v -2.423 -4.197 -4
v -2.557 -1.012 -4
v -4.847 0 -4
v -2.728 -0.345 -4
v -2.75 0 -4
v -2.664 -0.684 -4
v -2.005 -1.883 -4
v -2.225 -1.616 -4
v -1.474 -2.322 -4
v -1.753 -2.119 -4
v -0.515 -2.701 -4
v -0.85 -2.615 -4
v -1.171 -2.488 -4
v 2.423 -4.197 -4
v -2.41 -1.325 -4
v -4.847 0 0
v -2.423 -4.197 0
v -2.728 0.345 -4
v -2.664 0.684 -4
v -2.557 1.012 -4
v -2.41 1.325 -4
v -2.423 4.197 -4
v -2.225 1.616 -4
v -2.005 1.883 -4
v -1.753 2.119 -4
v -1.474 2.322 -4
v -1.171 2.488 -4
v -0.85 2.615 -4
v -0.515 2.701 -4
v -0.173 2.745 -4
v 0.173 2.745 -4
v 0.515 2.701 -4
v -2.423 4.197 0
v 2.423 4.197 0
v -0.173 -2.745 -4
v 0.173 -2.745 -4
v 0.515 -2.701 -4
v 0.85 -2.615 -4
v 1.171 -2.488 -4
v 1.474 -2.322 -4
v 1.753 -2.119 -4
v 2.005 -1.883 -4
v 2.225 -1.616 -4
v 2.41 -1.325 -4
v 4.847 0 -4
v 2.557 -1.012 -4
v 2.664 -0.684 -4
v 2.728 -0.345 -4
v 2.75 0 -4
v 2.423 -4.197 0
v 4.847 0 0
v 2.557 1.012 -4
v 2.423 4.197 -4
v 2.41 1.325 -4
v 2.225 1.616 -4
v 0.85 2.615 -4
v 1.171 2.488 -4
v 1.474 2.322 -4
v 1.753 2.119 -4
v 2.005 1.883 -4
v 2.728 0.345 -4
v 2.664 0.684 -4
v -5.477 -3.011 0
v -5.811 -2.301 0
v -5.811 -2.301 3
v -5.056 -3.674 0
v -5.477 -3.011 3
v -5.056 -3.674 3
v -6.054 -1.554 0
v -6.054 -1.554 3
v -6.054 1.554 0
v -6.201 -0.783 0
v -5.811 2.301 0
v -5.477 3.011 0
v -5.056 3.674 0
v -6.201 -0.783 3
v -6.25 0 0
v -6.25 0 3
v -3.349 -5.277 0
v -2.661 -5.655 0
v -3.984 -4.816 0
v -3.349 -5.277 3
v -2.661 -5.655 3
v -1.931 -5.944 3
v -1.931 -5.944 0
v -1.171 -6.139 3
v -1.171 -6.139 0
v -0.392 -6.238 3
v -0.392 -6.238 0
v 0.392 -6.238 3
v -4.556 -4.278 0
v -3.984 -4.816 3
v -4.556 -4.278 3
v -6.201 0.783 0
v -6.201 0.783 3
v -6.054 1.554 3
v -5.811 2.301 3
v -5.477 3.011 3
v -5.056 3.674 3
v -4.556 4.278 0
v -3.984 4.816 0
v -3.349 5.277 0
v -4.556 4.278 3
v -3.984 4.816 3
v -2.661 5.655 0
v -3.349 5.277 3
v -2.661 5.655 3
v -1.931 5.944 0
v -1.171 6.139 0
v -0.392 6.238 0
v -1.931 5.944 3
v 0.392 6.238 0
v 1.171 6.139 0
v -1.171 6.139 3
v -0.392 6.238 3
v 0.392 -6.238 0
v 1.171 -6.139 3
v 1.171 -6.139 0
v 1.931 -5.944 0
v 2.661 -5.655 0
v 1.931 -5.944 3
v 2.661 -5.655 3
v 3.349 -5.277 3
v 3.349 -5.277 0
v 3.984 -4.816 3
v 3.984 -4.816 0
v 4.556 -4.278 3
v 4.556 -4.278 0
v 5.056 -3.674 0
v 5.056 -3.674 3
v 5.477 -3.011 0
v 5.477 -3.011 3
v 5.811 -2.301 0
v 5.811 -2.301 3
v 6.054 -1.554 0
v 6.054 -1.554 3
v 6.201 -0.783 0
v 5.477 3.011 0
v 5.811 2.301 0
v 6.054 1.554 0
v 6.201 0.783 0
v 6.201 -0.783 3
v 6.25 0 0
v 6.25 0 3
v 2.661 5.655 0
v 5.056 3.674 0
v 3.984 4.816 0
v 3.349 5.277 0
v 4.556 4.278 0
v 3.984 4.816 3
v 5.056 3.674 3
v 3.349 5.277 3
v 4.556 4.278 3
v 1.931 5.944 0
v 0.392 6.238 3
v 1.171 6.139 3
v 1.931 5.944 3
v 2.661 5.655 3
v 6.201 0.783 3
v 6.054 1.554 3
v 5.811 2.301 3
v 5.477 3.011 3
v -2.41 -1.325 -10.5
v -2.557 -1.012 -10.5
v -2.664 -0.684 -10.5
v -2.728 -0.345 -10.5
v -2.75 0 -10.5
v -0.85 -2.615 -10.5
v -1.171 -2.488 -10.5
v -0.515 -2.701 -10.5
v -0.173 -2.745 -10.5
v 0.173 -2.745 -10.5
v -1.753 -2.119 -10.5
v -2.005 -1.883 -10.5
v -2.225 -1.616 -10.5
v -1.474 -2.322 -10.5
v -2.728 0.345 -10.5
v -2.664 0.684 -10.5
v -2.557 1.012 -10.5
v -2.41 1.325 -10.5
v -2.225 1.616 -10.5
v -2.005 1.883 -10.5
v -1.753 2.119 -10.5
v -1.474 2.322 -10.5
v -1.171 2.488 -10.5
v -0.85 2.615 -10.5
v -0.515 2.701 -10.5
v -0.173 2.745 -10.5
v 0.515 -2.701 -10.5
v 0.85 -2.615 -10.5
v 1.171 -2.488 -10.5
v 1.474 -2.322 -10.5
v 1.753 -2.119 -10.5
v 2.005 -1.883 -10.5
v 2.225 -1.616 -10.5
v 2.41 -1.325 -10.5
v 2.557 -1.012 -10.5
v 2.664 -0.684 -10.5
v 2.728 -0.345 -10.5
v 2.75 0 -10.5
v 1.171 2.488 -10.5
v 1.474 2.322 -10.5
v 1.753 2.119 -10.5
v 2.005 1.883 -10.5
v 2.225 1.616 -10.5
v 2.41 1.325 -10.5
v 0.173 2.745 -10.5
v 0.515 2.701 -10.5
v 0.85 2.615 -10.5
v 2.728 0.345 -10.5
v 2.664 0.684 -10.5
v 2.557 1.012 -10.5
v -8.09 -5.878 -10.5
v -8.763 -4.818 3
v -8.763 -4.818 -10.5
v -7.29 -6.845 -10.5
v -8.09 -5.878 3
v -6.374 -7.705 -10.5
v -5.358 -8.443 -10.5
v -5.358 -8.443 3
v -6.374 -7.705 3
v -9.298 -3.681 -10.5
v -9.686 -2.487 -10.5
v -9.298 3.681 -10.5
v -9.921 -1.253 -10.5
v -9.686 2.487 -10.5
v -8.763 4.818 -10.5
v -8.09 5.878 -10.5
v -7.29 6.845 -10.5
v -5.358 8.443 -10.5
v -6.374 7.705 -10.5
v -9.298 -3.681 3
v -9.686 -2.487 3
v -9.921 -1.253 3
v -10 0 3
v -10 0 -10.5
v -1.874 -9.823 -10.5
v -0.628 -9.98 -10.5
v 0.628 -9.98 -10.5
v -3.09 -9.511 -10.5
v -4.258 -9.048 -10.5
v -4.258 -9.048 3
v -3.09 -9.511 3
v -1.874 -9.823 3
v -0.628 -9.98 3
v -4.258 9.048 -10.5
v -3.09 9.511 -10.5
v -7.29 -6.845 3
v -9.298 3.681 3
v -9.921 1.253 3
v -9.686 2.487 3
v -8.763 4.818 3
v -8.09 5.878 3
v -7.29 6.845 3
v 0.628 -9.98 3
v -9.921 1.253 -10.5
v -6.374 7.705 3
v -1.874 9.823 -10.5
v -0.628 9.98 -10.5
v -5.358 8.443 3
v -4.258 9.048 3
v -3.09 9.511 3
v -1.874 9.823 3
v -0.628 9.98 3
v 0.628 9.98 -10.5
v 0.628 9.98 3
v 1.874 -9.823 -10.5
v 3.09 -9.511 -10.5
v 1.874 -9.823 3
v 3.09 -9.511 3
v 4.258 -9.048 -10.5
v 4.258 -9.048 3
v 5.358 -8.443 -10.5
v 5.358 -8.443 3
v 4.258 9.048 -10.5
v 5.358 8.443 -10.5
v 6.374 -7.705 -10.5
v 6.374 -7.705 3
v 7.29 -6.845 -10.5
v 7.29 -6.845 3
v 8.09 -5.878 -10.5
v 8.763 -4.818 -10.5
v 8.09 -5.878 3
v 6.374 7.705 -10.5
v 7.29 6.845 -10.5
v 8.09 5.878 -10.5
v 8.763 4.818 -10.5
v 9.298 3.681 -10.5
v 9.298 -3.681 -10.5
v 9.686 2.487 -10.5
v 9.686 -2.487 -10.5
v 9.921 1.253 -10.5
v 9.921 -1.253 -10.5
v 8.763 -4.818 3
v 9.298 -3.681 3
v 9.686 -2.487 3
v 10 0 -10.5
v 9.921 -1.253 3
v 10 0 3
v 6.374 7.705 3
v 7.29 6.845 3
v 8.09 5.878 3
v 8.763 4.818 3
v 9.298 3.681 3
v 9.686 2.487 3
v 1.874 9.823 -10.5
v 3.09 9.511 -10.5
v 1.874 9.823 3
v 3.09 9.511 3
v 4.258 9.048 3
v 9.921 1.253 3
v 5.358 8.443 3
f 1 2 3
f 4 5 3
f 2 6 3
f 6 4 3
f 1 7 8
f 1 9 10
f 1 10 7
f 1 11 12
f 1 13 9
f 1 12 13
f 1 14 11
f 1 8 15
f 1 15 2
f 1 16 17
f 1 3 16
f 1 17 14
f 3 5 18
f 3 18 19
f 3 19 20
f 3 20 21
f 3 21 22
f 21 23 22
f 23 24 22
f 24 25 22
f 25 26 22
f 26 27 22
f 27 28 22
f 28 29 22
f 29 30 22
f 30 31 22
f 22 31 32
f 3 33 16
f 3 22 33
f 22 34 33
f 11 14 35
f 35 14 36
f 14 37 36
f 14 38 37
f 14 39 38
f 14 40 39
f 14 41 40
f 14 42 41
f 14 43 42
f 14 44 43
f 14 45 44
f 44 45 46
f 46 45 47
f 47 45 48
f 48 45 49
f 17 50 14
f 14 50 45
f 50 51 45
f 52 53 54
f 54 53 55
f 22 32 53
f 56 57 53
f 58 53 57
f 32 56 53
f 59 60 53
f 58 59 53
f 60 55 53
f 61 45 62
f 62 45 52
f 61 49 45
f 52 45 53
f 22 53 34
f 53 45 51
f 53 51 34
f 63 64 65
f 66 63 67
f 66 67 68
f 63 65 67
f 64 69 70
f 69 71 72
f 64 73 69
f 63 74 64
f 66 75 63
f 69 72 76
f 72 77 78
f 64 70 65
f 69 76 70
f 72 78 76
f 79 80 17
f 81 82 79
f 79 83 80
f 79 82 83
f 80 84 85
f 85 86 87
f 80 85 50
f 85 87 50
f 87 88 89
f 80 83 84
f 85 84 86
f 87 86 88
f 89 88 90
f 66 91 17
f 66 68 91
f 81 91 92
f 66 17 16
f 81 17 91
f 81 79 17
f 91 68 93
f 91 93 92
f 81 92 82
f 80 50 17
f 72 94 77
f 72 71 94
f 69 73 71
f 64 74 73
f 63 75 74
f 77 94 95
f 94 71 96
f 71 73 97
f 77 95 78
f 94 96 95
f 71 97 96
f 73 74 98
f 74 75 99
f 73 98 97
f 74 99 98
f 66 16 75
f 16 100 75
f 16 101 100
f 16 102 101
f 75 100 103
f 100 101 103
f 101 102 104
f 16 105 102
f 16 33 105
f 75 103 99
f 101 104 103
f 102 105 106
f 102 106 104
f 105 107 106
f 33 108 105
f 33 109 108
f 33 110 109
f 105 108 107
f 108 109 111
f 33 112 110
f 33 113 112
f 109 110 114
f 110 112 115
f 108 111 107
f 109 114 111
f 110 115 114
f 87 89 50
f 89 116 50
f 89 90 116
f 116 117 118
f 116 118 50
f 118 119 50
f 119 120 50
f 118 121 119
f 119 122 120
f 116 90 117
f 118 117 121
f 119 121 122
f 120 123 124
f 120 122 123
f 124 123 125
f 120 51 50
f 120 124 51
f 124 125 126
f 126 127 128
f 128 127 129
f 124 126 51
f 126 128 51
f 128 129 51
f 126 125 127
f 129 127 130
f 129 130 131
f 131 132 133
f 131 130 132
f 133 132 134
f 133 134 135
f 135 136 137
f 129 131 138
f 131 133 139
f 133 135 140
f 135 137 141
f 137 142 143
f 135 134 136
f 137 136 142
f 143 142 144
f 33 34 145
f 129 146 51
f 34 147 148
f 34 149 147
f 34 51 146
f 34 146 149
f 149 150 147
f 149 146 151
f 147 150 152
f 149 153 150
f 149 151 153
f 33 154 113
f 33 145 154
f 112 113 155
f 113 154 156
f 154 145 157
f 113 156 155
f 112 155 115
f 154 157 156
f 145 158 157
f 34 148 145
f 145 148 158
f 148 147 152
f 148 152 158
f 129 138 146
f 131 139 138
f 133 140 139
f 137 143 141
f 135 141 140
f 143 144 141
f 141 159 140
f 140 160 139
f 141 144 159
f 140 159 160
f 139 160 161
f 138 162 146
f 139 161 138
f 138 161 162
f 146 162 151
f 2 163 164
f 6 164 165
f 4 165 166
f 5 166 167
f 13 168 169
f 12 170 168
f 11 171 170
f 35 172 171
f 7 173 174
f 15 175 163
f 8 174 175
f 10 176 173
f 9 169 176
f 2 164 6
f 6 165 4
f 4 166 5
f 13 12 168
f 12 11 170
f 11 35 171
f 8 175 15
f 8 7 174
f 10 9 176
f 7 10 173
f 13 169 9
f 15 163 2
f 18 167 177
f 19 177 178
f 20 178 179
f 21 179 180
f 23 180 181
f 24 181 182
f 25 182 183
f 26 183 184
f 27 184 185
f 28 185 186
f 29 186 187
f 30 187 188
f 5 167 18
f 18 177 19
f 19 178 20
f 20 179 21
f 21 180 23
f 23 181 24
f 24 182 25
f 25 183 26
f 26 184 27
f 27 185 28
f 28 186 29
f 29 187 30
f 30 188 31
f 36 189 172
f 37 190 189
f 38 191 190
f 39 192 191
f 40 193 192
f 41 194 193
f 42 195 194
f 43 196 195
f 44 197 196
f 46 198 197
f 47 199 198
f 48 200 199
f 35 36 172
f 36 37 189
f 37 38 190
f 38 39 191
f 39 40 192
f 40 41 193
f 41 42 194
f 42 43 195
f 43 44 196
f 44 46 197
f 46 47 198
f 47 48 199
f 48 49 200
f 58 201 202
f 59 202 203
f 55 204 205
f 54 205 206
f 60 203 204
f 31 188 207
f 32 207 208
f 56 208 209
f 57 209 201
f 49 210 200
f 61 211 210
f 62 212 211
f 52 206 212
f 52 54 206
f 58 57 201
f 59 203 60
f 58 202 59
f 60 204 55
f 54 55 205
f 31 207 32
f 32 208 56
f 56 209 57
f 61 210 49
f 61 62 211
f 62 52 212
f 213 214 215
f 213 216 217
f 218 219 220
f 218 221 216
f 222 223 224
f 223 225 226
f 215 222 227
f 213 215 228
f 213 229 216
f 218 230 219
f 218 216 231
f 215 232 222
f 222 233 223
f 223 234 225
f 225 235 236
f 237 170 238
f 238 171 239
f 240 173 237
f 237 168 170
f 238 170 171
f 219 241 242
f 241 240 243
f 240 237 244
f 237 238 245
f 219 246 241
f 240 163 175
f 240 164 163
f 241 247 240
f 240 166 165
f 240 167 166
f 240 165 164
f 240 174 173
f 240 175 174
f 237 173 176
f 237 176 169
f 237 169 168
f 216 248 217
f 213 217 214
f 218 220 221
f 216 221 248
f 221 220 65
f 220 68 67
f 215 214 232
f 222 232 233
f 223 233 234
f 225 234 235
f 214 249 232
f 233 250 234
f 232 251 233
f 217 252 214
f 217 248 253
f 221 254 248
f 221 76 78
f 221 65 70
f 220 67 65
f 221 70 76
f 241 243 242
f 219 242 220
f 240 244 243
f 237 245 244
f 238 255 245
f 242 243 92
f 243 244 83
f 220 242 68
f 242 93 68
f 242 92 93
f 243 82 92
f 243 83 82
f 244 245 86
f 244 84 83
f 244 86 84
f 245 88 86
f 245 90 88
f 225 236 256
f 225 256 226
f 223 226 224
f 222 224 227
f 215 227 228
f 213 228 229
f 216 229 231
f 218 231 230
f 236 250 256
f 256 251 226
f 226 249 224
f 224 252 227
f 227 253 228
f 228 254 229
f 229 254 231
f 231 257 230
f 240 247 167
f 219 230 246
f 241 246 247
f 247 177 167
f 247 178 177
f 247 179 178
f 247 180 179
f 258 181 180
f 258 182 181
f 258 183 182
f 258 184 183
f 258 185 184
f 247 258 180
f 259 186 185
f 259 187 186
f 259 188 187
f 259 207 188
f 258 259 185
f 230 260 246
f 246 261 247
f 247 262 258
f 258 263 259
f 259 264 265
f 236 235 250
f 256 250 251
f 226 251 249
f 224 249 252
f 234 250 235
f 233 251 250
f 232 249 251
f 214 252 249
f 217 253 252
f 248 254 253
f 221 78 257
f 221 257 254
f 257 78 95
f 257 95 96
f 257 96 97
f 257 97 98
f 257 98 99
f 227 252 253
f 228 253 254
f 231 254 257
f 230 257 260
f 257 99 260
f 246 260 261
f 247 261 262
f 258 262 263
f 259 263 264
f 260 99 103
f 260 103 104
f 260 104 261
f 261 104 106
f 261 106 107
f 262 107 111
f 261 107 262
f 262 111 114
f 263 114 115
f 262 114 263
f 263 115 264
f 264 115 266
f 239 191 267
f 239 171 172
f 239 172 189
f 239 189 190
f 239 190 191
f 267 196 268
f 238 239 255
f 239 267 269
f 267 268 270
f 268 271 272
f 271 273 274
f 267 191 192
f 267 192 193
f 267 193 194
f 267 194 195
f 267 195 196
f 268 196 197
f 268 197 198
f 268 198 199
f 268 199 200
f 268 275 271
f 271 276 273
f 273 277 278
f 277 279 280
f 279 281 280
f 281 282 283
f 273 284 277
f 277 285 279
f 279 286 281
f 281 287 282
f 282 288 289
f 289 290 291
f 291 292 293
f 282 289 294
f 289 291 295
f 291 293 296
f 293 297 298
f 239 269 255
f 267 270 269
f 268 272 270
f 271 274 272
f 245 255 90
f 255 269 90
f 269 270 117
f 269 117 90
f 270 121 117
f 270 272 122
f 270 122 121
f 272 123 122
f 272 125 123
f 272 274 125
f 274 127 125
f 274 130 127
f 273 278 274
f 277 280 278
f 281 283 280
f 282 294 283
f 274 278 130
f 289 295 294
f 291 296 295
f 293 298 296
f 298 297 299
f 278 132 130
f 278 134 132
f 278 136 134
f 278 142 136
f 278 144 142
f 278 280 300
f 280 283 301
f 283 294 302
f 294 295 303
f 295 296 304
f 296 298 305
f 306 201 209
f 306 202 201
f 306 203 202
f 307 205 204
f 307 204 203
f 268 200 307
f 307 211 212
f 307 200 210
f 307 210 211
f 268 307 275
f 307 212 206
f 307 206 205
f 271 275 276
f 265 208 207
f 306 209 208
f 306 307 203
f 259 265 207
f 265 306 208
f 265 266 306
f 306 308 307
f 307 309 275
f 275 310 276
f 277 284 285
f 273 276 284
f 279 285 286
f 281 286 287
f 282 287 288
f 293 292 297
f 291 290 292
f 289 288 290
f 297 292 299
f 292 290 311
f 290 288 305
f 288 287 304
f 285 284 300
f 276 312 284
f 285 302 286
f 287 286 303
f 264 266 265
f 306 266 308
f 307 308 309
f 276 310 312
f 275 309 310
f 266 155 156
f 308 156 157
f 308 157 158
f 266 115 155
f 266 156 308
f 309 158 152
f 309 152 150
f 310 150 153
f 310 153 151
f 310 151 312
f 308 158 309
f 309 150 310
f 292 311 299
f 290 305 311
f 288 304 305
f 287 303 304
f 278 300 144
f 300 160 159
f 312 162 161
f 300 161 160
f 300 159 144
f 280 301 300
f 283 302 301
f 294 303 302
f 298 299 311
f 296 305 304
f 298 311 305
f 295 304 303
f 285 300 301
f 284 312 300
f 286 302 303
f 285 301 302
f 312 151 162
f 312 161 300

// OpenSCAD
$fn = 50;

difference() {
	union() {
		translate(v = [0, 0, -10.5]) {
			cylinder(h = 13.5, r = 10.0);
		}
	}
	union() {
		translate(v = [0, 0, 0]) {
			rotate(a = [0, 0, 0]) {
				difference() {
					union() {
						translate(v = [0, 0, -4]) {
							linear_extrude(height = 4) {
								polygon(points = [[4.8468, 0.0], [2.4234000000000004, 4.197451927062417], [-2.423399999999999, 4.197451927062417], [-4.8468, 5.935618106107392e-16], [-2.423400000000002, -4.197451927062416], [2.423399999999997, -4.197451927062419]]);
							}
						}
					}
					union();
				}
			}
		}
		#cylinder(h = 3, r = 6.25);
		#translate(v = [0, 0, -100.0]) {
			cylinder(h = 200, r = 2.75);
		}
	}
}
